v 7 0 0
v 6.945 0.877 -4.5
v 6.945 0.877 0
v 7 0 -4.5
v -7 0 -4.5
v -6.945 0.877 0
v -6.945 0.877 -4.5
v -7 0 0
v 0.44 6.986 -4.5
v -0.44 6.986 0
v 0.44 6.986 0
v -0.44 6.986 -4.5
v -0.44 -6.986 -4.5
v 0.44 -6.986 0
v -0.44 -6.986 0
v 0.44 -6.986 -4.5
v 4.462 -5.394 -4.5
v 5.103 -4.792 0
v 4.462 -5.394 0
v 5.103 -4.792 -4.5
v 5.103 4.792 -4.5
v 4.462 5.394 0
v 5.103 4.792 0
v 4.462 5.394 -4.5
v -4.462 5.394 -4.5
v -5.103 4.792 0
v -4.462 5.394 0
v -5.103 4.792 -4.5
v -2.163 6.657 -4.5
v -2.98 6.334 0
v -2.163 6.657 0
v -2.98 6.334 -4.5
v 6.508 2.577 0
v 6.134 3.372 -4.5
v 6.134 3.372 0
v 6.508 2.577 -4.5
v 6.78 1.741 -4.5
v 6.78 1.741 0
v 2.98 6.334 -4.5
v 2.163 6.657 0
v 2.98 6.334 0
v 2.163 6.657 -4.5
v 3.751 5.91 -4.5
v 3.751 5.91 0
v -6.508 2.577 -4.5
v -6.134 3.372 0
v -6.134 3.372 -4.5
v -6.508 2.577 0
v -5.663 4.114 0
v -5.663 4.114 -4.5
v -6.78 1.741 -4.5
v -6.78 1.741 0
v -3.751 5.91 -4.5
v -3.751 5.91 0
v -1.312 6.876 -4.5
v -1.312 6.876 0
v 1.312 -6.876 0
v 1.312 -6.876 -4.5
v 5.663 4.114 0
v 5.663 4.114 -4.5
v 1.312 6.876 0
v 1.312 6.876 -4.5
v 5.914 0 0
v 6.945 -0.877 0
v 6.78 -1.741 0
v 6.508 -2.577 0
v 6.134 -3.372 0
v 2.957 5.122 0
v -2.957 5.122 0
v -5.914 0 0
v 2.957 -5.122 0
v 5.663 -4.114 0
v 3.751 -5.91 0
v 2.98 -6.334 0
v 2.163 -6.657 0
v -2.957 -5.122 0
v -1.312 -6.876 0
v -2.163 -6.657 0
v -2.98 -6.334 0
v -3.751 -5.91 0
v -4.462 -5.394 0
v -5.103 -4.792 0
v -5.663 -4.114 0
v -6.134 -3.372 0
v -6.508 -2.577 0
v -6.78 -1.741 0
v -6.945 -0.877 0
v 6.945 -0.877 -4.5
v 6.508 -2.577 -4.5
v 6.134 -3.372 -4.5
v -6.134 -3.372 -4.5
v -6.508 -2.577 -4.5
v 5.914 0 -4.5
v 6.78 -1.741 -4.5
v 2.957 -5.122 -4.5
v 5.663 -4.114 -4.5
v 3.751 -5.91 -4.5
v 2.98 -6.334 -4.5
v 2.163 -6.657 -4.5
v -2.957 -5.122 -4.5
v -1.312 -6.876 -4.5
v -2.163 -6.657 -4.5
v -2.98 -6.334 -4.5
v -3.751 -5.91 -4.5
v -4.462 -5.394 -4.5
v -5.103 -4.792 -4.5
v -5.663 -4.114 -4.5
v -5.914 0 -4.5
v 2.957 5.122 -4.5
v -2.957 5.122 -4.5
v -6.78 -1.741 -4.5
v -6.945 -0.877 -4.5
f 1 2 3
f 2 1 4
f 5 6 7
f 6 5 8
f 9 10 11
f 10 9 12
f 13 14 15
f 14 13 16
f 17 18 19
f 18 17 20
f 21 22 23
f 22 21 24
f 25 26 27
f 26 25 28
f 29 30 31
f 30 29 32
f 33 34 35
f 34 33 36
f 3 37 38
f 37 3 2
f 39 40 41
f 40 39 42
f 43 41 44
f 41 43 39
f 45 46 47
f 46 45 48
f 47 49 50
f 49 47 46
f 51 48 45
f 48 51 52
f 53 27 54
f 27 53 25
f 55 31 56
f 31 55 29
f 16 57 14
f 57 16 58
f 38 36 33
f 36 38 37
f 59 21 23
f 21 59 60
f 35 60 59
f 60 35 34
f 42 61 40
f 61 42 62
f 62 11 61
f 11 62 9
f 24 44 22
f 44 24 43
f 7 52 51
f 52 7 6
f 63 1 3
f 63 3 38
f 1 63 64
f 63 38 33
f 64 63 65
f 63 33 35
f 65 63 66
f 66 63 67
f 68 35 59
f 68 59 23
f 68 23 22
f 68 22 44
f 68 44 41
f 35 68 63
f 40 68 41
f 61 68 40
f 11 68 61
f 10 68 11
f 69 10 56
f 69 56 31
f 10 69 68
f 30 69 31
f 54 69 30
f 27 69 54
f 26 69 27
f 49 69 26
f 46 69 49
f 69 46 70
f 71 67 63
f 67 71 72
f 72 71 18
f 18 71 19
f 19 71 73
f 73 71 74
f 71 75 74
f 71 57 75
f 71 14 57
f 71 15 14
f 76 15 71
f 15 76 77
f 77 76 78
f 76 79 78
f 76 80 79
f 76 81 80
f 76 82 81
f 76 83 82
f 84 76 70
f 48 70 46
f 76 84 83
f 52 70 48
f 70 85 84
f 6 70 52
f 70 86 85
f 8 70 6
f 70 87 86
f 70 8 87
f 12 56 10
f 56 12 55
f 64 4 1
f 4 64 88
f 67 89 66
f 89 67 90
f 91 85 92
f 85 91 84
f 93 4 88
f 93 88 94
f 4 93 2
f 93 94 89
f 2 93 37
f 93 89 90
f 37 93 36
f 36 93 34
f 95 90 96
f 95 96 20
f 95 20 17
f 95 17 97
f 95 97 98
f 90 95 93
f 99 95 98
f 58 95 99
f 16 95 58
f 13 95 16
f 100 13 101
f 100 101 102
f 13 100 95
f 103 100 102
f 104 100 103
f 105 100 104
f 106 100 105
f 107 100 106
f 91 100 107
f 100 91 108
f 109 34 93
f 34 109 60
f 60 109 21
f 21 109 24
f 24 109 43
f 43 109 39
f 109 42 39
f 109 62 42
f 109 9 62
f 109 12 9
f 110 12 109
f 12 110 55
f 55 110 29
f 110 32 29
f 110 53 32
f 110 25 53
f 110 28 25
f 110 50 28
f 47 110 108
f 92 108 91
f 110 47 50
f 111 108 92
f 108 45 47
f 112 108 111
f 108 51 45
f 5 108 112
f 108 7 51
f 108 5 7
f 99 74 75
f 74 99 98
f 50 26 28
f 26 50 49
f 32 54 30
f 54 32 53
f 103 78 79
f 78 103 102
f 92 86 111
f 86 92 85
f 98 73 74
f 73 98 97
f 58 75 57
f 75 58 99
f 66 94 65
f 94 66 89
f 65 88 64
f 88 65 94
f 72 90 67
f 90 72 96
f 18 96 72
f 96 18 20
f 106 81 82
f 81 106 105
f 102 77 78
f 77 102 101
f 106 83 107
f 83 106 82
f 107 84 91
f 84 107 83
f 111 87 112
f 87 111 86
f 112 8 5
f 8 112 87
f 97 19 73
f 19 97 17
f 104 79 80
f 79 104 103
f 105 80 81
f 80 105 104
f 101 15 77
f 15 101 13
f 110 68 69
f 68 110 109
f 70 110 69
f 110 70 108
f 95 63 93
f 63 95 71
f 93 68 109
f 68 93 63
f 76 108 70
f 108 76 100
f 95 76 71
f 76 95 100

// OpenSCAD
$fn = 50;


difference() {
	union() {
		translate(v = [0, 0, -4.5000000000]) {
			cylinder(h = 4.5000000000, r = 7.0000000000);
		}
		translate(v = [0, 0, -3.0000000000]) {
			cylinder(h = 3, r = 2.8750000000);
		}
	}
	union() {
		translate(v = [0, 0, 0]) {
			rotate(a = [0, 0, 0]) {
				difference() {
					union() {
						translate(v = [0, 0, -5]) {
							linear_extrude(height = 5) {
								polygon(points = [[5.9142500000, 0.0000000000], [2.9571250000, 5.1218907443], [-2.9571250000, 5.1218907443], [-5.9142500000, 0.0000000000], [-2.9571250000, -5.1218907443], [2.9571250000, -5.1218907443]]);
							}
						}
					}
					union();
				}
			}
		}
		#translate(v = [0, 0, -100.0000000000]) {
			cylinder(h = 200, r = 3.2500000000);
		}
	}
}
